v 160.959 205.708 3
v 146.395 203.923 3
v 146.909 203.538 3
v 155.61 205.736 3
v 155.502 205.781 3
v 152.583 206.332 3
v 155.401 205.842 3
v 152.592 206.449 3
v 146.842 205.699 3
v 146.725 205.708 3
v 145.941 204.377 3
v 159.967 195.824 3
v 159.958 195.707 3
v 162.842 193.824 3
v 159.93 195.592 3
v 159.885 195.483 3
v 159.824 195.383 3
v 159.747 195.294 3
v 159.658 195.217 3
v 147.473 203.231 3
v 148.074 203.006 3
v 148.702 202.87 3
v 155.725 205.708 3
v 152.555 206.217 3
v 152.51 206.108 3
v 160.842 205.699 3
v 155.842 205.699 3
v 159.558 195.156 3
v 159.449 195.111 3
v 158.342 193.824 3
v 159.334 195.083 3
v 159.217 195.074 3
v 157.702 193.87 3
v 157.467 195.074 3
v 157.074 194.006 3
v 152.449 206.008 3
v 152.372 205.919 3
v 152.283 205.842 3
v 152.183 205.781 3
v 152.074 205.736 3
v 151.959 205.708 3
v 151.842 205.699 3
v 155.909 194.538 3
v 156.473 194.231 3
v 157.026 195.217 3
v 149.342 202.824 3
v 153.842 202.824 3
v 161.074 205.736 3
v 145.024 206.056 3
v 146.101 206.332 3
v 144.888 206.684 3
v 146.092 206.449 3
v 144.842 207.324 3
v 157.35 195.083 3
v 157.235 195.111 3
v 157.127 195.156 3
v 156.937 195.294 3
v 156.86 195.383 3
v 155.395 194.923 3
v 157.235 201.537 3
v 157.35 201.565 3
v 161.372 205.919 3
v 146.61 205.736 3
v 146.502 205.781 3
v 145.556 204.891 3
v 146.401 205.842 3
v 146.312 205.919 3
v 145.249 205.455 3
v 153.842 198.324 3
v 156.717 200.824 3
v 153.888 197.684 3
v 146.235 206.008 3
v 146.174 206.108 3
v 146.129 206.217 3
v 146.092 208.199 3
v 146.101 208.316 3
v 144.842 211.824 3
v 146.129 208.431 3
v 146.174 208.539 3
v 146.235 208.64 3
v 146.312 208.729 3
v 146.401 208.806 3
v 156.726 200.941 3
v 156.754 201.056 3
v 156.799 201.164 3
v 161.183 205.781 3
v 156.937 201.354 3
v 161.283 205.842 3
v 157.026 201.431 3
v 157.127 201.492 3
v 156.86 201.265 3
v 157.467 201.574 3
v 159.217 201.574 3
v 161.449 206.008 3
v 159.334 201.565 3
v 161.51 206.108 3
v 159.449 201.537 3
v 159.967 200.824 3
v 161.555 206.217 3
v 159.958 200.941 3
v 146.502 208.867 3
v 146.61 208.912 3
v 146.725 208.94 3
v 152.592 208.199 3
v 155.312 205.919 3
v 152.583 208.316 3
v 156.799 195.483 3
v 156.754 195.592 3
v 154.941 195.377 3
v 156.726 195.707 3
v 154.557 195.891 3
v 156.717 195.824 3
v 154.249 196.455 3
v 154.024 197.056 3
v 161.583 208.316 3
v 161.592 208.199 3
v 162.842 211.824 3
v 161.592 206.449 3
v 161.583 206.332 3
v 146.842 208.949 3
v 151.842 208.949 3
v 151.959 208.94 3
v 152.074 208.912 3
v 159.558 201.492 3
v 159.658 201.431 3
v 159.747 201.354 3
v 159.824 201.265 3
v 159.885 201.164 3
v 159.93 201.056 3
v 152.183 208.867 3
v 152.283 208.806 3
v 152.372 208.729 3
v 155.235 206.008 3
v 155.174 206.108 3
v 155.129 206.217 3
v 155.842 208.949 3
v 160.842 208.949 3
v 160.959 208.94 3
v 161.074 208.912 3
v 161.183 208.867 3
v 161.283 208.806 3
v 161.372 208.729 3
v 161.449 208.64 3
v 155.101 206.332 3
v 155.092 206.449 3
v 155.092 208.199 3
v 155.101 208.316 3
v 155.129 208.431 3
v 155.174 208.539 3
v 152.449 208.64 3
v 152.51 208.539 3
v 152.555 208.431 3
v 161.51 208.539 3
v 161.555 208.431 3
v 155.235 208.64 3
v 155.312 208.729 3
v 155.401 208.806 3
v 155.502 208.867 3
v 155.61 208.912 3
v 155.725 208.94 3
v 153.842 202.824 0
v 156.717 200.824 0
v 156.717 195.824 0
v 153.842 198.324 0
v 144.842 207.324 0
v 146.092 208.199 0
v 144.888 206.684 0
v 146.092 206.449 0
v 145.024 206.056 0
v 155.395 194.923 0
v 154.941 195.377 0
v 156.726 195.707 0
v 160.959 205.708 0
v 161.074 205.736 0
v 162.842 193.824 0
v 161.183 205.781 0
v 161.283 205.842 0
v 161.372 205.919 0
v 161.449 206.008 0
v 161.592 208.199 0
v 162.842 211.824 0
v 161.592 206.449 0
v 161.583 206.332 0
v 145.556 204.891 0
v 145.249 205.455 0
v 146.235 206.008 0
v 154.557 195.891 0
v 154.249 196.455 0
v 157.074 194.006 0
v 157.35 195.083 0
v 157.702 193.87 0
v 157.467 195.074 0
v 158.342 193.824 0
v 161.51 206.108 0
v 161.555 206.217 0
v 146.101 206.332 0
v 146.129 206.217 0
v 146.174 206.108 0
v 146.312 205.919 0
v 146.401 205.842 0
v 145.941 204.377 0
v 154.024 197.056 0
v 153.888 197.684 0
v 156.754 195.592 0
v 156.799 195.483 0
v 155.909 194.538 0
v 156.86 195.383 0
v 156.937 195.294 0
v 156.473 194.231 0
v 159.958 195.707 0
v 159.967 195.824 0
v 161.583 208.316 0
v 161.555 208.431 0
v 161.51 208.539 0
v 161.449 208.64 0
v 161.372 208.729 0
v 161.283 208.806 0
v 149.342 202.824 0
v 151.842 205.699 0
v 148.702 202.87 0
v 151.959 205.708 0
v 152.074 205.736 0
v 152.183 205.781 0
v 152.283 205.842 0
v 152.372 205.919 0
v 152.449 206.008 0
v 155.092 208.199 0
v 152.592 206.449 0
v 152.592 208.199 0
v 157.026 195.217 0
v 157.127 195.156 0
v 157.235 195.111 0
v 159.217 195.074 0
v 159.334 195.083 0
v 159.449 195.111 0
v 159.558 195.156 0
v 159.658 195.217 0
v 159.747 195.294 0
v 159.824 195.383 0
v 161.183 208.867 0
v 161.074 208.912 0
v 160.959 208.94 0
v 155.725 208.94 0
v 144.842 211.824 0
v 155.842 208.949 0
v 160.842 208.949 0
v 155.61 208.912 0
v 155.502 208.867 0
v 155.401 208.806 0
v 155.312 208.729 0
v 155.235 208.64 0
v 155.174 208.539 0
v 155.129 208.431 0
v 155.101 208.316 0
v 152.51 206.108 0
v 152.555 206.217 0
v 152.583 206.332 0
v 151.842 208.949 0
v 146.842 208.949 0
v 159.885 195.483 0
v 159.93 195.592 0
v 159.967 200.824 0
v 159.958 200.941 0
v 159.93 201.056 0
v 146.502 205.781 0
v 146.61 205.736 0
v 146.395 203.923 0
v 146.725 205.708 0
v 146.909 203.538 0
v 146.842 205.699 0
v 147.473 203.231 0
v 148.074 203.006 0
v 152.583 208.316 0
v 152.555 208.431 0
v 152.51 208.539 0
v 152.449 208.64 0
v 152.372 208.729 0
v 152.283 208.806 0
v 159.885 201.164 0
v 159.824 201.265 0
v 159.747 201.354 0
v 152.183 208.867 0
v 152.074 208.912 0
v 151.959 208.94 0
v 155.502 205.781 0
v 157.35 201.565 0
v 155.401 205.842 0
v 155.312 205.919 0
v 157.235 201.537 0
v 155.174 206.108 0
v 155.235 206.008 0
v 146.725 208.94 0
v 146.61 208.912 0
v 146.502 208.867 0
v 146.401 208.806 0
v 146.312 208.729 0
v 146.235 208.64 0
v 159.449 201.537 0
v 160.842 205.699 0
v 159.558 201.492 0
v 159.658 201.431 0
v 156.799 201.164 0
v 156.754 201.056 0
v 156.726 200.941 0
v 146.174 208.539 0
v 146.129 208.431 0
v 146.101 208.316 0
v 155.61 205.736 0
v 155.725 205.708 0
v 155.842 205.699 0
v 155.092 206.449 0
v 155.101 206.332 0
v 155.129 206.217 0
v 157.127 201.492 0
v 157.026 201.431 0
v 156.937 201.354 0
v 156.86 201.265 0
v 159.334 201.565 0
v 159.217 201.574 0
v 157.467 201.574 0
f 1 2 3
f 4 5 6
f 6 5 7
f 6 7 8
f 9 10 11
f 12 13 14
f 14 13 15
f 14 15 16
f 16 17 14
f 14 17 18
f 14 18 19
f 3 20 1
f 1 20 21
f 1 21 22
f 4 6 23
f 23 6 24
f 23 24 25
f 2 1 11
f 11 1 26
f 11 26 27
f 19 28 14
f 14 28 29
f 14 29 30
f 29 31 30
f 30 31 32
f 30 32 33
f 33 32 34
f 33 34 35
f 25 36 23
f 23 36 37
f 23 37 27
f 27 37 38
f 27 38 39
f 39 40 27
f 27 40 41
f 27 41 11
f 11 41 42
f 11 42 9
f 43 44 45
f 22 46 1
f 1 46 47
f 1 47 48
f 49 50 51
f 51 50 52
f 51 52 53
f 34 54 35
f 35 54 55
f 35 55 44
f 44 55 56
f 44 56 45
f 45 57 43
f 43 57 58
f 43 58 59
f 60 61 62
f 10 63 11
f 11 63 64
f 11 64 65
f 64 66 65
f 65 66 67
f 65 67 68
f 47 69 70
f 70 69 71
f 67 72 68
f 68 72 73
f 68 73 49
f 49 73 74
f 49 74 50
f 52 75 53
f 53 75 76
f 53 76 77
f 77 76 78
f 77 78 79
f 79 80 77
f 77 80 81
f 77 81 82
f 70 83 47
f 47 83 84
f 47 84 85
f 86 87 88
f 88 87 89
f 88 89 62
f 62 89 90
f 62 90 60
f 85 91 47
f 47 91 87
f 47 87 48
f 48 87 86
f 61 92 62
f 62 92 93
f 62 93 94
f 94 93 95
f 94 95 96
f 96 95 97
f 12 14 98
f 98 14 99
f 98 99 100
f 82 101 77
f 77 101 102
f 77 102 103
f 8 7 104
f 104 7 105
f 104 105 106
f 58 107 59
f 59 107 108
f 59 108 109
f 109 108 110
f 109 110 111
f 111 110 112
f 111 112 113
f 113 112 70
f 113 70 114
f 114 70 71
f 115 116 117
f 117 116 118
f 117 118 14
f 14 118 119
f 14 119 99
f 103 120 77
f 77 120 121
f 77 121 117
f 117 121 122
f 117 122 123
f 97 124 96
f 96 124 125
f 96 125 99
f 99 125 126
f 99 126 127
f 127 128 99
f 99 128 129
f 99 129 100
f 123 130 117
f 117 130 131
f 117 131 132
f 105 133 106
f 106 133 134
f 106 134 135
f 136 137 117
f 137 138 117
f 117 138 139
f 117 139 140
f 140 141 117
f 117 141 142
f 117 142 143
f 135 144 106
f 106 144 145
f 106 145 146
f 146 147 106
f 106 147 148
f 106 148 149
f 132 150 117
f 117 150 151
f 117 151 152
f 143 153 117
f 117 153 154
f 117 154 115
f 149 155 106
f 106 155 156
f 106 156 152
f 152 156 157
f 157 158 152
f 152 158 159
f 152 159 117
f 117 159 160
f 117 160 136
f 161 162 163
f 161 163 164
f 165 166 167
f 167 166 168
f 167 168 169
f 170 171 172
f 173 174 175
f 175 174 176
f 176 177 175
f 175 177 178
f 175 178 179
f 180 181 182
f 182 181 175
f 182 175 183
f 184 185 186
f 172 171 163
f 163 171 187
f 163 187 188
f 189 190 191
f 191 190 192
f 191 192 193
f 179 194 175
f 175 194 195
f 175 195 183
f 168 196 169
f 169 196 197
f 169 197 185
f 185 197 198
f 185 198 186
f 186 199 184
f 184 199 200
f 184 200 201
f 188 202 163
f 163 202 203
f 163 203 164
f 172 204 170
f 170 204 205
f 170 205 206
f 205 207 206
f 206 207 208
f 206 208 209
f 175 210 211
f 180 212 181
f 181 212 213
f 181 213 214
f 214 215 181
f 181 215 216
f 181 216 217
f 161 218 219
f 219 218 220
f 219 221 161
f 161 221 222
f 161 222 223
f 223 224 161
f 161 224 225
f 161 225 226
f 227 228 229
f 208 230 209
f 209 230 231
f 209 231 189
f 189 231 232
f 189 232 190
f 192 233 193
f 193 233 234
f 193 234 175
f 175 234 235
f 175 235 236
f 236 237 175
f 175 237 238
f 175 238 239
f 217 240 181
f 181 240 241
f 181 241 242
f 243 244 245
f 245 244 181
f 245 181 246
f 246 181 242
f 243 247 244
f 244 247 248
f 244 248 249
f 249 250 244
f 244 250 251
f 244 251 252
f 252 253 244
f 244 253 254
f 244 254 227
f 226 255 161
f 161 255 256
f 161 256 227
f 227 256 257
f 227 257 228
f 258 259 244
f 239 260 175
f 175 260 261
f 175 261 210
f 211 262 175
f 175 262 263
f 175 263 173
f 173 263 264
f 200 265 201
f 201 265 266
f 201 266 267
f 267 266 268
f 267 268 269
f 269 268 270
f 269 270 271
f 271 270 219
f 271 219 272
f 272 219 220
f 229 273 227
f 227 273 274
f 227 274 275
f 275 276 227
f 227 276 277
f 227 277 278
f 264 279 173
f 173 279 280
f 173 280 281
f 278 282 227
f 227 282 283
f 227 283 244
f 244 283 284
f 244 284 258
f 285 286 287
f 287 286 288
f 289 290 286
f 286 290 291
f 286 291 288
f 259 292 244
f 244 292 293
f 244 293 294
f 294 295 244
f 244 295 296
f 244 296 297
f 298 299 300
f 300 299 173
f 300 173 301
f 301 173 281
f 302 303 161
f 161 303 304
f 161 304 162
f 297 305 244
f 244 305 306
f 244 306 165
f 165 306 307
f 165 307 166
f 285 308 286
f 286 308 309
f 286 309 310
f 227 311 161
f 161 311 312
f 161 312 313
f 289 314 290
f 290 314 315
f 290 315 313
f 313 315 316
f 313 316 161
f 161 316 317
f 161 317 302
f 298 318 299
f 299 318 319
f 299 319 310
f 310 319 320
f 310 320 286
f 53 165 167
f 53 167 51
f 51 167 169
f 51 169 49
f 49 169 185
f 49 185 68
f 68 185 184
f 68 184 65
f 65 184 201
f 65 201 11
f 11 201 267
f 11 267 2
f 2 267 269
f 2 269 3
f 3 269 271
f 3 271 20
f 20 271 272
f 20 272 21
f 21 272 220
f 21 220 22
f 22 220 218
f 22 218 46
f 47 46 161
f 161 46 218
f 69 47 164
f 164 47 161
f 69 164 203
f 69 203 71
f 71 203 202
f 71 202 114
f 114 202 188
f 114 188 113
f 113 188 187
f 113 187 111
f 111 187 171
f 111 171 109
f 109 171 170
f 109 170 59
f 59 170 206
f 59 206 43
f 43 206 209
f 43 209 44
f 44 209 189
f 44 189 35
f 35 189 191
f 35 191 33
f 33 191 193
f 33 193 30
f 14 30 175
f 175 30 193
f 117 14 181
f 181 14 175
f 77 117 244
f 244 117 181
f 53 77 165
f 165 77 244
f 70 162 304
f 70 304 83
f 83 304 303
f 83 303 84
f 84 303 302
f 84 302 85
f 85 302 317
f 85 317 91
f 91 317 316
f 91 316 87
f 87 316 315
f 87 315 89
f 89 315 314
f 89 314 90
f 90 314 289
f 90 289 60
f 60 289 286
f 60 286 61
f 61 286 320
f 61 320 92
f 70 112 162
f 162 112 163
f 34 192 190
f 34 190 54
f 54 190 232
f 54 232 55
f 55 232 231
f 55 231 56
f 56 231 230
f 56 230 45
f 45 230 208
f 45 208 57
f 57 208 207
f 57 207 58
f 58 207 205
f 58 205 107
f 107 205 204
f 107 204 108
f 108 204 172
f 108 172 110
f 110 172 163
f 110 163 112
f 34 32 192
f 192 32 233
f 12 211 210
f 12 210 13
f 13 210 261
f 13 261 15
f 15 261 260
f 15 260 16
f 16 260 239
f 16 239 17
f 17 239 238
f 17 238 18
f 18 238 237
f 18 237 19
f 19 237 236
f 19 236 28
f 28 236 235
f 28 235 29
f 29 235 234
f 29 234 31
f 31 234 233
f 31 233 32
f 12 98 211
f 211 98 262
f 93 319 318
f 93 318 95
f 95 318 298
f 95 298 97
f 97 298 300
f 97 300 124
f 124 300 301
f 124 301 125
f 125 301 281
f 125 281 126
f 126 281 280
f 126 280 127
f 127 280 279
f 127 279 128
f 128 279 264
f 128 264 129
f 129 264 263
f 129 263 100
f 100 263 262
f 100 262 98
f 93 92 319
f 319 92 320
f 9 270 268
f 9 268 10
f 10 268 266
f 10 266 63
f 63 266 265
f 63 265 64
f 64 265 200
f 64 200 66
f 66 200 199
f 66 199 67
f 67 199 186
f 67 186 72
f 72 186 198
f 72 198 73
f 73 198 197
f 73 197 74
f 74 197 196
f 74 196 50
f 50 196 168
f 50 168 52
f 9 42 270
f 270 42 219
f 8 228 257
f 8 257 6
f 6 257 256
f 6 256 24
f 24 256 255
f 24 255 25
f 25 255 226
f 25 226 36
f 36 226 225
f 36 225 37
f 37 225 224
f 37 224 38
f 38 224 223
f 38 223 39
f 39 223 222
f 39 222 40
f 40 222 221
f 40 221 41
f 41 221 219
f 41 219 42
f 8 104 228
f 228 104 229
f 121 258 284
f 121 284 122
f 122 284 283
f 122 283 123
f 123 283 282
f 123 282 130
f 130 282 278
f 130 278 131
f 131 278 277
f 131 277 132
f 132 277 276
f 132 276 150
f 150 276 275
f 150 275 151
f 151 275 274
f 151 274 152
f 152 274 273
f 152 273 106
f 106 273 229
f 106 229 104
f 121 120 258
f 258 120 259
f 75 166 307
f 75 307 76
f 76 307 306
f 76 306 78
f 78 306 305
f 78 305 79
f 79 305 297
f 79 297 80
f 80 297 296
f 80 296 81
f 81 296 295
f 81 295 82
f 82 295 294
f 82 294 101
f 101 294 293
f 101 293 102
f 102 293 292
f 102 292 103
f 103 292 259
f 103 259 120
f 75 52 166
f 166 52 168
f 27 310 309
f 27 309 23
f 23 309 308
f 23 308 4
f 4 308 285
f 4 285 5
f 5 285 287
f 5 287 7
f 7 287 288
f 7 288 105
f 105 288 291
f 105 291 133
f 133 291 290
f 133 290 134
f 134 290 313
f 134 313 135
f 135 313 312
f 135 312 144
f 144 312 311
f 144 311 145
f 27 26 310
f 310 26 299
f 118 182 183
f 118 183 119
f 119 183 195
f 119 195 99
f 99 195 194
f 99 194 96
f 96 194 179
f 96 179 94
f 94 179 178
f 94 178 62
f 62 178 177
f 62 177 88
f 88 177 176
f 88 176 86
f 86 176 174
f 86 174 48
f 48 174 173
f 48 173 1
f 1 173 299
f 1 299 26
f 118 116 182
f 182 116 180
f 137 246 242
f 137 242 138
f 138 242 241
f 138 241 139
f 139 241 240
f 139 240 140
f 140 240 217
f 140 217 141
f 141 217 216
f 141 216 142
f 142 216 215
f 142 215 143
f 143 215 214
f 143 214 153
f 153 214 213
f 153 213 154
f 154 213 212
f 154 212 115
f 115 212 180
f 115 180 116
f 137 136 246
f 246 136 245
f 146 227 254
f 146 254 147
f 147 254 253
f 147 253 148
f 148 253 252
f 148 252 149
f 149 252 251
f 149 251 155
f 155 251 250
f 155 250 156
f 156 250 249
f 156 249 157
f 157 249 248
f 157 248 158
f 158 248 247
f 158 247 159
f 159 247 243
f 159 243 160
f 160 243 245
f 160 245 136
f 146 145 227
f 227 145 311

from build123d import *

# Parameters (mm, degrees)
SALIENTE_EXTRUIR1_DEPTH = 3


with BuildPart() as part:
    # Model → Saliente-Extruir1 (new body)
    with BuildSketch(Plane.XY):
        with BuildLine():
            Line((149.34213351, 211.823953209), (158.34213351, 211.823953209))
            Line((158.34213351, 211.823953209), (162.84213351, 211.823953209))
            Line((162.84213351, 211.823953209), (162.84213351, 198.323953209))
            Line((162.84213351, 198.323953209), (162.84213351, 193.823953209))
            Line((162.84213351, 193.823953209), (158.34213351, 193.823953209))
            ThreePointArc((158.34213351, 193.823953209), (155.160152994, 195.141972694), (153.84213351, 198.323953209))
            Line((153.84213351, 198.323953209), (153.84213351, 202.823953209))
            Line((153.84213351, 202.823953209), (149.34213351, 202.823953209))
            ThreePointArc((149.34213351, 202.823953209), (146.160152994, 204.141972694), (144.84213351, 207.323953209))
            Line((144.84213351, 207.323953209), (144.84213351, 211.823953209))
            Line((144.84213351, 211.823953209), (149.34213351, 211.823953209))
        make_face()
        with BuildLine():
            Line((156.71713351, 195.823953209), (156.71713351, 200.823953209))
            ThreePointArc((156.71713351, 200.823953209), (156.936803424, 201.354283295), (157.46713351, 201.573953209))
            Line((157.46713351, 201.573953209), (159.21713351, 201.573953209))
            ThreePointArc((159.21713351, 201.573953209), (159.747463595, 201.354283295), (159.96713351, 200.823953209))
            Line((159.96713351, 200.823953209), (159.96713351, 195.823953209))
            ThreePointArc((159.96713351, 195.823953209), (159.747463595, 195.293623123), (159.21713351, 195.073953209))
            Line((159.21713351, 195.073953209), (157.46713351, 195.073953209))
            ThreePointArc((157.46713351, 195.073953209), (156.936803424, 195.293623123), (156.71713351, 195.823953209))
        make_face(mode=Mode.SUBTRACT)
        with BuildLine():
            Line((151.84213351, 205.698953209), (146.84213351, 205.698953209))
            ThreePointArc((146.84213351, 205.698953209), (146.311803424, 205.918623123), (146.09213351, 206.448953209))
            Line((146.09213351, 206.448953209), (146.09213351, 208.198953209))
            ThreePointArc((146.09213351, 208.198953209), (146.311803424, 208.729283295), (146.84213351, 208.948953209))
            Line((146.84213351, 208.948953209), (151.84213351, 208.948953209))
            ThreePointArc((151.84213351, 208.948953209), (152.372463595, 208.729283295), (152.59213351, 208.198953209))
            Line((152.59213351, 208.198953209), (152.59213351, 206.448953209))
            ThreePointArc((152.59213351, 206.448953209), (152.372463595, 205.918623123), (151.84213351, 205.698953209))
        make_face(mode=Mode.SUBTRACT)
        with BuildLine():
            Line((160.84213351, 205.698953209), (155.84213351, 205.698953209))
            ThreePointArc((155.84213351, 205.698953209), (155.311803424, 205.918623123), (155.09213351, 206.448953209))
            Line((155.09213351, 206.448953209), (155.09213351, 208.198953209))
            ThreePointArc((155.09213351, 208.198953209), (155.311803424, 208.729283295), (155.84213351, 208.948953209))
            Line((155.84213351, 208.948953209), (160.84213351, 208.948953209))
            ThreePointArc((160.84213351, 208.948953209), (161.372463595, 208.729283295), (161.59213351, 208.198953209))
            Line((161.59213351, 208.198953209), (161.59213351, 206.448953209))
            ThreePointArc((161.59213351, 206.448953209), (161.372463595, 205.918623123), (160.84213351, 205.698953209))
        make_face(mode=Mode.SUBTRACT)
    extrude(amount=SALIENTE_EXTRUIR1_DEPTH)


solid = part.part
